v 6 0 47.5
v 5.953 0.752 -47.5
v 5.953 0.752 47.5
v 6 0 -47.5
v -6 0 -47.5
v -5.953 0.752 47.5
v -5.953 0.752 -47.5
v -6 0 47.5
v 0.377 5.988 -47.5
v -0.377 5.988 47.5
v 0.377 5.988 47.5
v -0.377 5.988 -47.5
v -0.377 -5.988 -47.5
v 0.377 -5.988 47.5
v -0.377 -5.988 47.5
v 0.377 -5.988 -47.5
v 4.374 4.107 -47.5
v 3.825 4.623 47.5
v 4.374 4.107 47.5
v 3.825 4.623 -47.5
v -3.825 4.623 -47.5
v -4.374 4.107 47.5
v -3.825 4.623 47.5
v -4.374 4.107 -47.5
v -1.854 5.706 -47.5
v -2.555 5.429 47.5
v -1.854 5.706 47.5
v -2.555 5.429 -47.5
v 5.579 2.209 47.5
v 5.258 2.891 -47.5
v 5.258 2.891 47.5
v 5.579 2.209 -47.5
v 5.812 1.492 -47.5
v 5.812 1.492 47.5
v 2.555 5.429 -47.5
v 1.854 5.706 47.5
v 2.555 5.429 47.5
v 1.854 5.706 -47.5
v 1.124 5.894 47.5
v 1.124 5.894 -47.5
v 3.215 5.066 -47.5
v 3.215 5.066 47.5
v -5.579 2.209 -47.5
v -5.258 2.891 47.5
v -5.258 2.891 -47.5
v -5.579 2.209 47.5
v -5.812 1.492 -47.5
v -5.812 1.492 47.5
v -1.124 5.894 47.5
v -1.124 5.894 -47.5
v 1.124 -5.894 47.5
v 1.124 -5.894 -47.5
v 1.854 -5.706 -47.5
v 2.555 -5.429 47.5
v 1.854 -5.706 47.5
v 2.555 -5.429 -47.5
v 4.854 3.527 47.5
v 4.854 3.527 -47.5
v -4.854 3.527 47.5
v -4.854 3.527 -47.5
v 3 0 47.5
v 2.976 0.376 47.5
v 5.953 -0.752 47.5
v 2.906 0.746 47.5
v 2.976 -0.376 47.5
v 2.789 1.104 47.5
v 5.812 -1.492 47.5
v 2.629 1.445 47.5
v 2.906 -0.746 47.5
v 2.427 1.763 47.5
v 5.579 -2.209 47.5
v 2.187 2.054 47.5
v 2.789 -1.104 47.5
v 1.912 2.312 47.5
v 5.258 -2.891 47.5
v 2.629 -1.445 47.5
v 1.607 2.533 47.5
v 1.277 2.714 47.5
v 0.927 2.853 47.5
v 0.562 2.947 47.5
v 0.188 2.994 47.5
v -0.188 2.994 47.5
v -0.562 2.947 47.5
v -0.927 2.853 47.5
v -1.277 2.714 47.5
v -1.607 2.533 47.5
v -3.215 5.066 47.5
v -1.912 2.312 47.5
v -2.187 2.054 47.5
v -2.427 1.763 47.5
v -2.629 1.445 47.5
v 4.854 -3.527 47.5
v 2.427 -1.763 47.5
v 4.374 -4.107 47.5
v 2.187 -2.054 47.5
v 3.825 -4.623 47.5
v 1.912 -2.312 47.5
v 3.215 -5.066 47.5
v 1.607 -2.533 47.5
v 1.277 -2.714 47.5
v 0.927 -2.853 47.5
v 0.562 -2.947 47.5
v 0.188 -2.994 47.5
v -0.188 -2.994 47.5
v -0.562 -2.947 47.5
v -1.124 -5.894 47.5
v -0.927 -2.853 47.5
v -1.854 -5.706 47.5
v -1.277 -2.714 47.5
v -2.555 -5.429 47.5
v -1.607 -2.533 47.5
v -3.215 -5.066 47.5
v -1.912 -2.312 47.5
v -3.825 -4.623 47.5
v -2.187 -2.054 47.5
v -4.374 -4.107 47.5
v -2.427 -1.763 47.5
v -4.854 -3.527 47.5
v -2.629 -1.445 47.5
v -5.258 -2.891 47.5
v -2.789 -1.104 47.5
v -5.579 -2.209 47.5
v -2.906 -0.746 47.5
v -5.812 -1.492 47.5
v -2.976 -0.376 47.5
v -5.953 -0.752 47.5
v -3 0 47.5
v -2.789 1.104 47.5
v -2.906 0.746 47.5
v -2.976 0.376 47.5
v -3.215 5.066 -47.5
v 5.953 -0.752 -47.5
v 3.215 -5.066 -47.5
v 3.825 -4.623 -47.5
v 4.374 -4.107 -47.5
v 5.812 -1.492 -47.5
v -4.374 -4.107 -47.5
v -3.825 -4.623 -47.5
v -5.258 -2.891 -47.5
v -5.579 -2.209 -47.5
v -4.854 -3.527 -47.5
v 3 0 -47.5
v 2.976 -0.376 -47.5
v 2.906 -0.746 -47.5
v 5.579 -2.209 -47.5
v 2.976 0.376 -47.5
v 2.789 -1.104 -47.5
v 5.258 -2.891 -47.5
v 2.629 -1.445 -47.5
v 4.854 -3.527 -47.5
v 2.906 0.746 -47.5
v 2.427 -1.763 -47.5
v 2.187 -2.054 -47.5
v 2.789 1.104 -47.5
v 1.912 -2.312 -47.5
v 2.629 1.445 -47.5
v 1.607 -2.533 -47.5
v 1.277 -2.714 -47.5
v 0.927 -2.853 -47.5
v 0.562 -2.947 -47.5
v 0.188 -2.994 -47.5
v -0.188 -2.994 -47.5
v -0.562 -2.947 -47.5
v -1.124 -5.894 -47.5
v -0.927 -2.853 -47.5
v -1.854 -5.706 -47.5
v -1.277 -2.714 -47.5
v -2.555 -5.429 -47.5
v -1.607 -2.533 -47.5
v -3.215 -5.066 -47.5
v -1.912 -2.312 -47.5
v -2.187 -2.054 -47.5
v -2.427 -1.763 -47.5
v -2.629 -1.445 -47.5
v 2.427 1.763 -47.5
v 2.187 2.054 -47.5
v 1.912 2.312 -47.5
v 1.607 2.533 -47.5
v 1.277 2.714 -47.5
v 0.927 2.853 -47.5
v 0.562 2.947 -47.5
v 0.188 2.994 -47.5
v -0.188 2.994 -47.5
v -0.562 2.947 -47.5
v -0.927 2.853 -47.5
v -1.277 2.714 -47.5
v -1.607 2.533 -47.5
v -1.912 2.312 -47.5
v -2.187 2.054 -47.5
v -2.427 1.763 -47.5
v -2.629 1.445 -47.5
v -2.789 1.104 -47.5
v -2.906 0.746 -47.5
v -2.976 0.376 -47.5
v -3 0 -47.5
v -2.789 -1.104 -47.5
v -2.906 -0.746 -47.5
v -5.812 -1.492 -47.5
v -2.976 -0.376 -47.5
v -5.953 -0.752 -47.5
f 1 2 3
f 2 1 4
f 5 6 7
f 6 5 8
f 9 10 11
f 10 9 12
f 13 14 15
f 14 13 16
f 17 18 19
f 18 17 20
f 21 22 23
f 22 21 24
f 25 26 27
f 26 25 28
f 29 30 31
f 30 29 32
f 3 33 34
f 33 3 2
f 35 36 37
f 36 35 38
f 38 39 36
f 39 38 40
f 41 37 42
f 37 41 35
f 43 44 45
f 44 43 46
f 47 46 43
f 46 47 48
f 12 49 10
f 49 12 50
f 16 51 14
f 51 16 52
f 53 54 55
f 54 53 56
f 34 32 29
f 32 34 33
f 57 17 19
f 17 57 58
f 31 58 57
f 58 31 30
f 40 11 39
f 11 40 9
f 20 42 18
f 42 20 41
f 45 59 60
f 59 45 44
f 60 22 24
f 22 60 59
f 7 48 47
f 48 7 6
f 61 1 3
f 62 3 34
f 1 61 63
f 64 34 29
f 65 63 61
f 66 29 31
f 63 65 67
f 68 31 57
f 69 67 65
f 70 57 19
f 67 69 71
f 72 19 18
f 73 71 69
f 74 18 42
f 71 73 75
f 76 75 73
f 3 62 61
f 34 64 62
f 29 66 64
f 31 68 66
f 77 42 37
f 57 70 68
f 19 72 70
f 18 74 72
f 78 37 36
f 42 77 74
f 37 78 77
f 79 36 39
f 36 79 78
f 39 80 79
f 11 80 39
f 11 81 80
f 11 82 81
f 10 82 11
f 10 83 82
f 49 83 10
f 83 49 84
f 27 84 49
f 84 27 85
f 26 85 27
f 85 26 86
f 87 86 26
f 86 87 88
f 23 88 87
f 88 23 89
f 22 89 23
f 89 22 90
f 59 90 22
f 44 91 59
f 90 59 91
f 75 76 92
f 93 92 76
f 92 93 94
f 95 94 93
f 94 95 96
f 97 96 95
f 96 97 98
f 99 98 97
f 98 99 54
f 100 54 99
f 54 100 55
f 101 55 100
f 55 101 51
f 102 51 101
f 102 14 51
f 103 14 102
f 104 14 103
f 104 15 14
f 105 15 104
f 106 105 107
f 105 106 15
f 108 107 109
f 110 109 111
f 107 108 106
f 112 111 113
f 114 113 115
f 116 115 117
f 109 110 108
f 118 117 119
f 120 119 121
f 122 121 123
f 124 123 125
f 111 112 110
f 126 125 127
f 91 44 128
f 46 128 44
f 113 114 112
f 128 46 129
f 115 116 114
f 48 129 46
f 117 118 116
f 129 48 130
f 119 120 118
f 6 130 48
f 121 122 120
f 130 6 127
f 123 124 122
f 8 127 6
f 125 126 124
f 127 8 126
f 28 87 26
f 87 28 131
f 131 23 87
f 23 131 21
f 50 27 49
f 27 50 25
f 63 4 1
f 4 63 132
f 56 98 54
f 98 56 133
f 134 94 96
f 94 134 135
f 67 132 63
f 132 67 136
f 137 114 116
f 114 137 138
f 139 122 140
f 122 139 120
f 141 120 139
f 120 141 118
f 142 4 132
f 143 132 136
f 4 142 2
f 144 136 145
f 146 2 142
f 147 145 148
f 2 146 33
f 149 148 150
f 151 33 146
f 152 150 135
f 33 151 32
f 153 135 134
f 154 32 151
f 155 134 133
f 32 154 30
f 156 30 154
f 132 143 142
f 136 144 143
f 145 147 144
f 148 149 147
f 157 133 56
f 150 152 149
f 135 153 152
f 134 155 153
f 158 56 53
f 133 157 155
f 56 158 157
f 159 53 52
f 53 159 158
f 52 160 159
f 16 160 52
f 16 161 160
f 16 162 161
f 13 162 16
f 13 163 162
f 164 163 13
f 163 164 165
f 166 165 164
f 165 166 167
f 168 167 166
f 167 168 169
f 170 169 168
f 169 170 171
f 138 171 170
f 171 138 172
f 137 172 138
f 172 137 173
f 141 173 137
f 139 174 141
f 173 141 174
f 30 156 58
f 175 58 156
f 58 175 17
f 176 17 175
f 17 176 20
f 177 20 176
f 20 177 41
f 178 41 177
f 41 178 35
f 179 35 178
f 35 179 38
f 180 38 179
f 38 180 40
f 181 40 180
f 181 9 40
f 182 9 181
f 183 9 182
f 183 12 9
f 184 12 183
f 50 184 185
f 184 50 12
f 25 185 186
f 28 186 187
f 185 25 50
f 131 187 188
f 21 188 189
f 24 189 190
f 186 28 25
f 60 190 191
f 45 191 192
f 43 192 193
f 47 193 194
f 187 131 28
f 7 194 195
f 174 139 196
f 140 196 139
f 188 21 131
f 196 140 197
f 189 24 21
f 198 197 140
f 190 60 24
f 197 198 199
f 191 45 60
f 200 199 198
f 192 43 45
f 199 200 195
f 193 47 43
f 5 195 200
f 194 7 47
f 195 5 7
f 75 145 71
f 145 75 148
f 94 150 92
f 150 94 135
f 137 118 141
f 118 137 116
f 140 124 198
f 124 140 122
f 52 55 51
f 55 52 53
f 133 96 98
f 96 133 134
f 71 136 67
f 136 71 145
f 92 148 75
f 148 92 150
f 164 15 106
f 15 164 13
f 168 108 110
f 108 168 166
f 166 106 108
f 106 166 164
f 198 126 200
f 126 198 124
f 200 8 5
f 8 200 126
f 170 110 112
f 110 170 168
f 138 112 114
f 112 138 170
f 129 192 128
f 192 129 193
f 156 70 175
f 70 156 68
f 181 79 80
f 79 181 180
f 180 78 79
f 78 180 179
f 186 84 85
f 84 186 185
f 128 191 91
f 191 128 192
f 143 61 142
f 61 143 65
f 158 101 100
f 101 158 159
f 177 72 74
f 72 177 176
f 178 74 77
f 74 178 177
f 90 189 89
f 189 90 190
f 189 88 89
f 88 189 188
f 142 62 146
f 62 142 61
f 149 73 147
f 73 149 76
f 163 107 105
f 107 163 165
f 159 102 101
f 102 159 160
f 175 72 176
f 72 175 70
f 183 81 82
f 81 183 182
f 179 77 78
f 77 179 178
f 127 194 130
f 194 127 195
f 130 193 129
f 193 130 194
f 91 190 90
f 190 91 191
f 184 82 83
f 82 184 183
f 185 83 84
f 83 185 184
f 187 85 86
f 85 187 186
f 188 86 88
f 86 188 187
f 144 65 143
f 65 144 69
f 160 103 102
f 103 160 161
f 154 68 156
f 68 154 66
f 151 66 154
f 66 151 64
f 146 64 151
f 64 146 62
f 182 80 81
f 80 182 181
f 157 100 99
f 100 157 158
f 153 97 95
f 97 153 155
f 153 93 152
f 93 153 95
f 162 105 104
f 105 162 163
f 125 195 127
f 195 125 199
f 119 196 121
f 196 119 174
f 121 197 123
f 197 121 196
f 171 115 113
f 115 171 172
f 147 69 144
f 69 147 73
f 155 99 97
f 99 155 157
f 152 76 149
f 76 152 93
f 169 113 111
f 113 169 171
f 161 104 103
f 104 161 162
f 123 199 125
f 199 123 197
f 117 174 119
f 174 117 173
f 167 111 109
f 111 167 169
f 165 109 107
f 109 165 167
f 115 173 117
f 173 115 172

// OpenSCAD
$fn = 50;


difference() {
	union() {
		translate(v = [0, 0, -47.5000000000]) {
			cylinder(h = 95, r = 6.0000000000);
		}
	}
	union() {
		translate(v = [0, 0, -100.0000000000]) {
			cylinder(h = 200, r = 3);
		}
	}
}
